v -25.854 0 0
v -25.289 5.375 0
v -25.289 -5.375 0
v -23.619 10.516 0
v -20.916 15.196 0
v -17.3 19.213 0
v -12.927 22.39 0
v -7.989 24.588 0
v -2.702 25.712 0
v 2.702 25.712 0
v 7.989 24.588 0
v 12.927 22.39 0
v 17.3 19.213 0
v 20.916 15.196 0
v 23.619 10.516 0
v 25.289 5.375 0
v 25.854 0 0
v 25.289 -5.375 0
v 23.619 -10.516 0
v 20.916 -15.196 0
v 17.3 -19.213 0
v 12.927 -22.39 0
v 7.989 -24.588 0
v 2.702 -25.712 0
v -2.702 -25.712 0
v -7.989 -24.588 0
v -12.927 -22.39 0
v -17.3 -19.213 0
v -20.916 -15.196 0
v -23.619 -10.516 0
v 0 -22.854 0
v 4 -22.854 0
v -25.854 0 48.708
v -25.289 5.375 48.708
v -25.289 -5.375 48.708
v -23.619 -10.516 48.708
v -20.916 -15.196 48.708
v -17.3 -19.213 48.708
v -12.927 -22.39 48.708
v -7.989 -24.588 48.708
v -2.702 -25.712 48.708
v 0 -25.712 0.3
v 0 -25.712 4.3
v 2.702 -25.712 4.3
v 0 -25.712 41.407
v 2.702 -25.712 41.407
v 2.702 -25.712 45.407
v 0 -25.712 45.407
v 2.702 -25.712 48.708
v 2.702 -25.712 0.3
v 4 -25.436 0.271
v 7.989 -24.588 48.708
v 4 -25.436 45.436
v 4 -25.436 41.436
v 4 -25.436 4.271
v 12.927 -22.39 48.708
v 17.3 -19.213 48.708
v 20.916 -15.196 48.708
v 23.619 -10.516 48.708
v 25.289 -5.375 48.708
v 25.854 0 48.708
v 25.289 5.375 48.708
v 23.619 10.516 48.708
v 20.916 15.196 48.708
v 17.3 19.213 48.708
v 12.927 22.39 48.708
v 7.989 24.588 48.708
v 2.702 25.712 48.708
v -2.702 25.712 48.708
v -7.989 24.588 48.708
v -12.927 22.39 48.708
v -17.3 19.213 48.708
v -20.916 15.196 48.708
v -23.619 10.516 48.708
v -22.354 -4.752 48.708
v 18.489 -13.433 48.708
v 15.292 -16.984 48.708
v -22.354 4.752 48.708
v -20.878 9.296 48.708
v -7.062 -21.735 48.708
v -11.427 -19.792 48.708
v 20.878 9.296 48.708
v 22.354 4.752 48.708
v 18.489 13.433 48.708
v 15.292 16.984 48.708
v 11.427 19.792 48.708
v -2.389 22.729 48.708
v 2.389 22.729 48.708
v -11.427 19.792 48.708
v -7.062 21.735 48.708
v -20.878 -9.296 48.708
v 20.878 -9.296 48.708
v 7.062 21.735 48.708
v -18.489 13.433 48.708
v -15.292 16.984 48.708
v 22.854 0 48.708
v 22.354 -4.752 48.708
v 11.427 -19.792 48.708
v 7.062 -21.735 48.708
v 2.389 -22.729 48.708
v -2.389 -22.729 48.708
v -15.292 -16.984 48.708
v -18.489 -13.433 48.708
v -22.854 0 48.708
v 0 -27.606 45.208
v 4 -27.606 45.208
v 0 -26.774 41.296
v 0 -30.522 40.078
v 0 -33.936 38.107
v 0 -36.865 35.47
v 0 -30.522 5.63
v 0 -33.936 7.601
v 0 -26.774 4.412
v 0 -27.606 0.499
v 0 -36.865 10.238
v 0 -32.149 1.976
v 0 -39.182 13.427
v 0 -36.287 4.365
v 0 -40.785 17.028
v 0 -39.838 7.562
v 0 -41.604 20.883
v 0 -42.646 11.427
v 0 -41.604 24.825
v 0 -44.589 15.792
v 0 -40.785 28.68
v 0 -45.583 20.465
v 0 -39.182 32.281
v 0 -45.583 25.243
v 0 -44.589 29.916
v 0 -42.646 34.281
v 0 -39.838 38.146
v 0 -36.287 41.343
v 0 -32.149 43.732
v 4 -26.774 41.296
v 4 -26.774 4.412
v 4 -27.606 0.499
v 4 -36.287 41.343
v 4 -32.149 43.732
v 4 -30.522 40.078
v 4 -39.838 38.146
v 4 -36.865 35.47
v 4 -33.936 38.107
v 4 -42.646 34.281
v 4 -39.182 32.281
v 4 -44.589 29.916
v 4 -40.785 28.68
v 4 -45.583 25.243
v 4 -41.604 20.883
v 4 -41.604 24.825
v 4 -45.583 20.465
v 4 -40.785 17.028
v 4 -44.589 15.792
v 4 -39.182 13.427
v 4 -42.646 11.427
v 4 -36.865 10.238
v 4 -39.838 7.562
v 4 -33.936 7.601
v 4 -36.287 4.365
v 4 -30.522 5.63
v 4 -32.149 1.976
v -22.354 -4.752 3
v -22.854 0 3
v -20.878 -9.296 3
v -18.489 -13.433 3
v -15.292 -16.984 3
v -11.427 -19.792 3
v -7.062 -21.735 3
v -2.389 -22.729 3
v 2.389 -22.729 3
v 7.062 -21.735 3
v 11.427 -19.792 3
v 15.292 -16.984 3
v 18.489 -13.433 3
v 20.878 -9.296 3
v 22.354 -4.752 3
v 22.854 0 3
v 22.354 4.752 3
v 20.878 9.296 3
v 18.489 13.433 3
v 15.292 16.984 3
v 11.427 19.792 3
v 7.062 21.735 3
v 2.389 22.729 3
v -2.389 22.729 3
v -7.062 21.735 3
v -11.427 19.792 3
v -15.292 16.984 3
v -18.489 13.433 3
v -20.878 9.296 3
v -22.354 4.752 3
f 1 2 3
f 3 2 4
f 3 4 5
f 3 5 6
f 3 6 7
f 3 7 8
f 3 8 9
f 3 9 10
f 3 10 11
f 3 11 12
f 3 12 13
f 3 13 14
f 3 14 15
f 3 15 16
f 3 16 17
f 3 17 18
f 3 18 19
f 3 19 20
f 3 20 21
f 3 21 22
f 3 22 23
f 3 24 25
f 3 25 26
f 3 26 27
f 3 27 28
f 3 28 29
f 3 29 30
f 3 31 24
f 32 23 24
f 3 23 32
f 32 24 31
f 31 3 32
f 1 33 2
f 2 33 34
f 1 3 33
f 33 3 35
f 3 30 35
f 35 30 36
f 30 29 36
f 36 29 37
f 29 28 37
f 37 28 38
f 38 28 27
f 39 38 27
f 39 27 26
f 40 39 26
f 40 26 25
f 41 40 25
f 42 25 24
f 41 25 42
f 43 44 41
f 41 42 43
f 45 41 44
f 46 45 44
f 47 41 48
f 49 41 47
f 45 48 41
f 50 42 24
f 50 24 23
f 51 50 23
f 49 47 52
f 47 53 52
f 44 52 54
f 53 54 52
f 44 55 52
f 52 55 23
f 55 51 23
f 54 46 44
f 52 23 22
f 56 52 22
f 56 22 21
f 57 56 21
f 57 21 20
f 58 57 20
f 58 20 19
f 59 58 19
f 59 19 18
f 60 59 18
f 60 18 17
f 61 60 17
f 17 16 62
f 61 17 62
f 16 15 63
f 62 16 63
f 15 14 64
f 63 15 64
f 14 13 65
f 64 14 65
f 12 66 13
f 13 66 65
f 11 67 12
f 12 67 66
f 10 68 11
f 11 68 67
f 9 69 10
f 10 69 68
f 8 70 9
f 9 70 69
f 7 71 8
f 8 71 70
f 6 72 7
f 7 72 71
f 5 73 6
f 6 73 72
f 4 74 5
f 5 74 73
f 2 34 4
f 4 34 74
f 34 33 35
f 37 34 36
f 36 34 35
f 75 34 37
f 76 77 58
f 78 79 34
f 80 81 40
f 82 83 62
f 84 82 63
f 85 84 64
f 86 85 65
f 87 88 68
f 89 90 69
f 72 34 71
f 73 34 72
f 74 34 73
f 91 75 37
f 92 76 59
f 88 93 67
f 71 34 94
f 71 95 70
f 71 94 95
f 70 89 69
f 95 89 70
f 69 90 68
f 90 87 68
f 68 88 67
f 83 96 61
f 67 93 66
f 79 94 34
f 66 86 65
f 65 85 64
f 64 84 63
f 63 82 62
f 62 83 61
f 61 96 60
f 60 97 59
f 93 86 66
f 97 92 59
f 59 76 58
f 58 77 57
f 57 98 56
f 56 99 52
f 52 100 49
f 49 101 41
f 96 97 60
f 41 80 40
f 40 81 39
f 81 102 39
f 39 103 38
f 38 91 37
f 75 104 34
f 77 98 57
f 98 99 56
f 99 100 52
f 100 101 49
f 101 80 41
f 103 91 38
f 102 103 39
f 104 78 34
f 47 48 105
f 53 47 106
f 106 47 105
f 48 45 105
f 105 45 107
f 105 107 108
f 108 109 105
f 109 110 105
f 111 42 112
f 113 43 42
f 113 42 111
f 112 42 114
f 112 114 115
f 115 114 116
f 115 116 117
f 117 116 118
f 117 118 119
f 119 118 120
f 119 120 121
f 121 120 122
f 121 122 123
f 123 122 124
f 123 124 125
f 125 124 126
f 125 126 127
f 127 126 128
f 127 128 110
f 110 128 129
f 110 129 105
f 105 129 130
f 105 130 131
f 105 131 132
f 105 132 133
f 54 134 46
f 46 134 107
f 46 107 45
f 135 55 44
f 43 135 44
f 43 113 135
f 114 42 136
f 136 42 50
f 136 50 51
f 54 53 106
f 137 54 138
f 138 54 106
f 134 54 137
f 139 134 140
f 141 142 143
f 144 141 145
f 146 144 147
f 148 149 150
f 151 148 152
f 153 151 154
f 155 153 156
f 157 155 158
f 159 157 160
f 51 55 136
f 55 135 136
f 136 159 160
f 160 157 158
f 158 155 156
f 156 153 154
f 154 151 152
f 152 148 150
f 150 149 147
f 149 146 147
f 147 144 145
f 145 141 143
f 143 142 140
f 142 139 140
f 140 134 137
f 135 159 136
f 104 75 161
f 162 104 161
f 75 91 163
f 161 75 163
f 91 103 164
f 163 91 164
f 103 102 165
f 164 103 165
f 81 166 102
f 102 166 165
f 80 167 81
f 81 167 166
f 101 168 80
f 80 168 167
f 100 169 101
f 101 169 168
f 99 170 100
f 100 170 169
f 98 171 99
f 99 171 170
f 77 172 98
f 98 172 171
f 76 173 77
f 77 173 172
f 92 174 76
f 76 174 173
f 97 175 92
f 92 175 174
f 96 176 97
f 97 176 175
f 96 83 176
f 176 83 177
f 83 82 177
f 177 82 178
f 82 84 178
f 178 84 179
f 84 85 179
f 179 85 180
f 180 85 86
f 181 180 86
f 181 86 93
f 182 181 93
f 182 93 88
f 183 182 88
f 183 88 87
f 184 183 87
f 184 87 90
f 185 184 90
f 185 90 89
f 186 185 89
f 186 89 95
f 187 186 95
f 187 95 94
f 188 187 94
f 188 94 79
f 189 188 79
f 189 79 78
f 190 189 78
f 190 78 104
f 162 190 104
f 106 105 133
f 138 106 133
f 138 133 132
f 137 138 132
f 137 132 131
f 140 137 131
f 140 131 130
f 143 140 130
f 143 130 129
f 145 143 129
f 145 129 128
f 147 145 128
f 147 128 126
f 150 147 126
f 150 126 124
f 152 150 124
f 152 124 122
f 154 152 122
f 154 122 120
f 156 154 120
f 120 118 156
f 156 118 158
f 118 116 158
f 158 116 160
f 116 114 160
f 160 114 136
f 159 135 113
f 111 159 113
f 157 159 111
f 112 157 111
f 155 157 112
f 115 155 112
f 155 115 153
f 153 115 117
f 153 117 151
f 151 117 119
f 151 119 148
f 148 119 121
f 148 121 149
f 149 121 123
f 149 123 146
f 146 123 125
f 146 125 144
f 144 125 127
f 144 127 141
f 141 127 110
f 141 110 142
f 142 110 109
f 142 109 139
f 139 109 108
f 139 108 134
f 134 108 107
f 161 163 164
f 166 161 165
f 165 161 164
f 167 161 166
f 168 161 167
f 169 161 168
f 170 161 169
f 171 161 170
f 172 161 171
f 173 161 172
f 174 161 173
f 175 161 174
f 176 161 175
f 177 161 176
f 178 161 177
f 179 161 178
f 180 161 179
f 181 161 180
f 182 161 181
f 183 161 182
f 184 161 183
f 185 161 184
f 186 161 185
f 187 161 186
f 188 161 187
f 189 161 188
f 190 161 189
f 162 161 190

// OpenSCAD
thickness = 3;
// 75mL == 75 cm^3 = 75000 mm^3
volume = 75 * 1000;
squat_ratio = 1;
pi = 3.141592635;
// volume = pi * r^2 * h
// h = 2 * r * squat_ratio
// volume = pi * r^2 * (2r * squat_ratio)
// volume / pi = r^3 * squat_ratio * 2
// (volume / pi) / (squat_ratio * 2) = r^3
// r = ((volume / pi) / (squat_ratio * 2)) ^ 1/3
inner_radius = pow(((volume / pi) / (squat_ratio * 2)), 1/3);
inner_height = 2 * inner_radius * squat_ratio;
outer_radius = inner_radius + thickness;
outer_height = inner_height + thickness;
// cylinder quality
cq = 30;

module handle() {

 translate([0,-1*outer_radius+thickness,inner_radius])
  rotate([0,90,0])
   difference() {
    cylinder(r=inner_radius, h=thickness+1, $fn=cq);
    cylinder(r=inner_radius-thickness-1, h=thickness+1, $fn=cq);
   }
}
difference() {
 union() {
  cylinder(r=outer_radius, h=outer_height, $fn=cq);
  handle();
 }
 #translate([0,0,thickness]) cylinder(r=inner_radius, h=inner_height + 1, $fn=cq);
}
